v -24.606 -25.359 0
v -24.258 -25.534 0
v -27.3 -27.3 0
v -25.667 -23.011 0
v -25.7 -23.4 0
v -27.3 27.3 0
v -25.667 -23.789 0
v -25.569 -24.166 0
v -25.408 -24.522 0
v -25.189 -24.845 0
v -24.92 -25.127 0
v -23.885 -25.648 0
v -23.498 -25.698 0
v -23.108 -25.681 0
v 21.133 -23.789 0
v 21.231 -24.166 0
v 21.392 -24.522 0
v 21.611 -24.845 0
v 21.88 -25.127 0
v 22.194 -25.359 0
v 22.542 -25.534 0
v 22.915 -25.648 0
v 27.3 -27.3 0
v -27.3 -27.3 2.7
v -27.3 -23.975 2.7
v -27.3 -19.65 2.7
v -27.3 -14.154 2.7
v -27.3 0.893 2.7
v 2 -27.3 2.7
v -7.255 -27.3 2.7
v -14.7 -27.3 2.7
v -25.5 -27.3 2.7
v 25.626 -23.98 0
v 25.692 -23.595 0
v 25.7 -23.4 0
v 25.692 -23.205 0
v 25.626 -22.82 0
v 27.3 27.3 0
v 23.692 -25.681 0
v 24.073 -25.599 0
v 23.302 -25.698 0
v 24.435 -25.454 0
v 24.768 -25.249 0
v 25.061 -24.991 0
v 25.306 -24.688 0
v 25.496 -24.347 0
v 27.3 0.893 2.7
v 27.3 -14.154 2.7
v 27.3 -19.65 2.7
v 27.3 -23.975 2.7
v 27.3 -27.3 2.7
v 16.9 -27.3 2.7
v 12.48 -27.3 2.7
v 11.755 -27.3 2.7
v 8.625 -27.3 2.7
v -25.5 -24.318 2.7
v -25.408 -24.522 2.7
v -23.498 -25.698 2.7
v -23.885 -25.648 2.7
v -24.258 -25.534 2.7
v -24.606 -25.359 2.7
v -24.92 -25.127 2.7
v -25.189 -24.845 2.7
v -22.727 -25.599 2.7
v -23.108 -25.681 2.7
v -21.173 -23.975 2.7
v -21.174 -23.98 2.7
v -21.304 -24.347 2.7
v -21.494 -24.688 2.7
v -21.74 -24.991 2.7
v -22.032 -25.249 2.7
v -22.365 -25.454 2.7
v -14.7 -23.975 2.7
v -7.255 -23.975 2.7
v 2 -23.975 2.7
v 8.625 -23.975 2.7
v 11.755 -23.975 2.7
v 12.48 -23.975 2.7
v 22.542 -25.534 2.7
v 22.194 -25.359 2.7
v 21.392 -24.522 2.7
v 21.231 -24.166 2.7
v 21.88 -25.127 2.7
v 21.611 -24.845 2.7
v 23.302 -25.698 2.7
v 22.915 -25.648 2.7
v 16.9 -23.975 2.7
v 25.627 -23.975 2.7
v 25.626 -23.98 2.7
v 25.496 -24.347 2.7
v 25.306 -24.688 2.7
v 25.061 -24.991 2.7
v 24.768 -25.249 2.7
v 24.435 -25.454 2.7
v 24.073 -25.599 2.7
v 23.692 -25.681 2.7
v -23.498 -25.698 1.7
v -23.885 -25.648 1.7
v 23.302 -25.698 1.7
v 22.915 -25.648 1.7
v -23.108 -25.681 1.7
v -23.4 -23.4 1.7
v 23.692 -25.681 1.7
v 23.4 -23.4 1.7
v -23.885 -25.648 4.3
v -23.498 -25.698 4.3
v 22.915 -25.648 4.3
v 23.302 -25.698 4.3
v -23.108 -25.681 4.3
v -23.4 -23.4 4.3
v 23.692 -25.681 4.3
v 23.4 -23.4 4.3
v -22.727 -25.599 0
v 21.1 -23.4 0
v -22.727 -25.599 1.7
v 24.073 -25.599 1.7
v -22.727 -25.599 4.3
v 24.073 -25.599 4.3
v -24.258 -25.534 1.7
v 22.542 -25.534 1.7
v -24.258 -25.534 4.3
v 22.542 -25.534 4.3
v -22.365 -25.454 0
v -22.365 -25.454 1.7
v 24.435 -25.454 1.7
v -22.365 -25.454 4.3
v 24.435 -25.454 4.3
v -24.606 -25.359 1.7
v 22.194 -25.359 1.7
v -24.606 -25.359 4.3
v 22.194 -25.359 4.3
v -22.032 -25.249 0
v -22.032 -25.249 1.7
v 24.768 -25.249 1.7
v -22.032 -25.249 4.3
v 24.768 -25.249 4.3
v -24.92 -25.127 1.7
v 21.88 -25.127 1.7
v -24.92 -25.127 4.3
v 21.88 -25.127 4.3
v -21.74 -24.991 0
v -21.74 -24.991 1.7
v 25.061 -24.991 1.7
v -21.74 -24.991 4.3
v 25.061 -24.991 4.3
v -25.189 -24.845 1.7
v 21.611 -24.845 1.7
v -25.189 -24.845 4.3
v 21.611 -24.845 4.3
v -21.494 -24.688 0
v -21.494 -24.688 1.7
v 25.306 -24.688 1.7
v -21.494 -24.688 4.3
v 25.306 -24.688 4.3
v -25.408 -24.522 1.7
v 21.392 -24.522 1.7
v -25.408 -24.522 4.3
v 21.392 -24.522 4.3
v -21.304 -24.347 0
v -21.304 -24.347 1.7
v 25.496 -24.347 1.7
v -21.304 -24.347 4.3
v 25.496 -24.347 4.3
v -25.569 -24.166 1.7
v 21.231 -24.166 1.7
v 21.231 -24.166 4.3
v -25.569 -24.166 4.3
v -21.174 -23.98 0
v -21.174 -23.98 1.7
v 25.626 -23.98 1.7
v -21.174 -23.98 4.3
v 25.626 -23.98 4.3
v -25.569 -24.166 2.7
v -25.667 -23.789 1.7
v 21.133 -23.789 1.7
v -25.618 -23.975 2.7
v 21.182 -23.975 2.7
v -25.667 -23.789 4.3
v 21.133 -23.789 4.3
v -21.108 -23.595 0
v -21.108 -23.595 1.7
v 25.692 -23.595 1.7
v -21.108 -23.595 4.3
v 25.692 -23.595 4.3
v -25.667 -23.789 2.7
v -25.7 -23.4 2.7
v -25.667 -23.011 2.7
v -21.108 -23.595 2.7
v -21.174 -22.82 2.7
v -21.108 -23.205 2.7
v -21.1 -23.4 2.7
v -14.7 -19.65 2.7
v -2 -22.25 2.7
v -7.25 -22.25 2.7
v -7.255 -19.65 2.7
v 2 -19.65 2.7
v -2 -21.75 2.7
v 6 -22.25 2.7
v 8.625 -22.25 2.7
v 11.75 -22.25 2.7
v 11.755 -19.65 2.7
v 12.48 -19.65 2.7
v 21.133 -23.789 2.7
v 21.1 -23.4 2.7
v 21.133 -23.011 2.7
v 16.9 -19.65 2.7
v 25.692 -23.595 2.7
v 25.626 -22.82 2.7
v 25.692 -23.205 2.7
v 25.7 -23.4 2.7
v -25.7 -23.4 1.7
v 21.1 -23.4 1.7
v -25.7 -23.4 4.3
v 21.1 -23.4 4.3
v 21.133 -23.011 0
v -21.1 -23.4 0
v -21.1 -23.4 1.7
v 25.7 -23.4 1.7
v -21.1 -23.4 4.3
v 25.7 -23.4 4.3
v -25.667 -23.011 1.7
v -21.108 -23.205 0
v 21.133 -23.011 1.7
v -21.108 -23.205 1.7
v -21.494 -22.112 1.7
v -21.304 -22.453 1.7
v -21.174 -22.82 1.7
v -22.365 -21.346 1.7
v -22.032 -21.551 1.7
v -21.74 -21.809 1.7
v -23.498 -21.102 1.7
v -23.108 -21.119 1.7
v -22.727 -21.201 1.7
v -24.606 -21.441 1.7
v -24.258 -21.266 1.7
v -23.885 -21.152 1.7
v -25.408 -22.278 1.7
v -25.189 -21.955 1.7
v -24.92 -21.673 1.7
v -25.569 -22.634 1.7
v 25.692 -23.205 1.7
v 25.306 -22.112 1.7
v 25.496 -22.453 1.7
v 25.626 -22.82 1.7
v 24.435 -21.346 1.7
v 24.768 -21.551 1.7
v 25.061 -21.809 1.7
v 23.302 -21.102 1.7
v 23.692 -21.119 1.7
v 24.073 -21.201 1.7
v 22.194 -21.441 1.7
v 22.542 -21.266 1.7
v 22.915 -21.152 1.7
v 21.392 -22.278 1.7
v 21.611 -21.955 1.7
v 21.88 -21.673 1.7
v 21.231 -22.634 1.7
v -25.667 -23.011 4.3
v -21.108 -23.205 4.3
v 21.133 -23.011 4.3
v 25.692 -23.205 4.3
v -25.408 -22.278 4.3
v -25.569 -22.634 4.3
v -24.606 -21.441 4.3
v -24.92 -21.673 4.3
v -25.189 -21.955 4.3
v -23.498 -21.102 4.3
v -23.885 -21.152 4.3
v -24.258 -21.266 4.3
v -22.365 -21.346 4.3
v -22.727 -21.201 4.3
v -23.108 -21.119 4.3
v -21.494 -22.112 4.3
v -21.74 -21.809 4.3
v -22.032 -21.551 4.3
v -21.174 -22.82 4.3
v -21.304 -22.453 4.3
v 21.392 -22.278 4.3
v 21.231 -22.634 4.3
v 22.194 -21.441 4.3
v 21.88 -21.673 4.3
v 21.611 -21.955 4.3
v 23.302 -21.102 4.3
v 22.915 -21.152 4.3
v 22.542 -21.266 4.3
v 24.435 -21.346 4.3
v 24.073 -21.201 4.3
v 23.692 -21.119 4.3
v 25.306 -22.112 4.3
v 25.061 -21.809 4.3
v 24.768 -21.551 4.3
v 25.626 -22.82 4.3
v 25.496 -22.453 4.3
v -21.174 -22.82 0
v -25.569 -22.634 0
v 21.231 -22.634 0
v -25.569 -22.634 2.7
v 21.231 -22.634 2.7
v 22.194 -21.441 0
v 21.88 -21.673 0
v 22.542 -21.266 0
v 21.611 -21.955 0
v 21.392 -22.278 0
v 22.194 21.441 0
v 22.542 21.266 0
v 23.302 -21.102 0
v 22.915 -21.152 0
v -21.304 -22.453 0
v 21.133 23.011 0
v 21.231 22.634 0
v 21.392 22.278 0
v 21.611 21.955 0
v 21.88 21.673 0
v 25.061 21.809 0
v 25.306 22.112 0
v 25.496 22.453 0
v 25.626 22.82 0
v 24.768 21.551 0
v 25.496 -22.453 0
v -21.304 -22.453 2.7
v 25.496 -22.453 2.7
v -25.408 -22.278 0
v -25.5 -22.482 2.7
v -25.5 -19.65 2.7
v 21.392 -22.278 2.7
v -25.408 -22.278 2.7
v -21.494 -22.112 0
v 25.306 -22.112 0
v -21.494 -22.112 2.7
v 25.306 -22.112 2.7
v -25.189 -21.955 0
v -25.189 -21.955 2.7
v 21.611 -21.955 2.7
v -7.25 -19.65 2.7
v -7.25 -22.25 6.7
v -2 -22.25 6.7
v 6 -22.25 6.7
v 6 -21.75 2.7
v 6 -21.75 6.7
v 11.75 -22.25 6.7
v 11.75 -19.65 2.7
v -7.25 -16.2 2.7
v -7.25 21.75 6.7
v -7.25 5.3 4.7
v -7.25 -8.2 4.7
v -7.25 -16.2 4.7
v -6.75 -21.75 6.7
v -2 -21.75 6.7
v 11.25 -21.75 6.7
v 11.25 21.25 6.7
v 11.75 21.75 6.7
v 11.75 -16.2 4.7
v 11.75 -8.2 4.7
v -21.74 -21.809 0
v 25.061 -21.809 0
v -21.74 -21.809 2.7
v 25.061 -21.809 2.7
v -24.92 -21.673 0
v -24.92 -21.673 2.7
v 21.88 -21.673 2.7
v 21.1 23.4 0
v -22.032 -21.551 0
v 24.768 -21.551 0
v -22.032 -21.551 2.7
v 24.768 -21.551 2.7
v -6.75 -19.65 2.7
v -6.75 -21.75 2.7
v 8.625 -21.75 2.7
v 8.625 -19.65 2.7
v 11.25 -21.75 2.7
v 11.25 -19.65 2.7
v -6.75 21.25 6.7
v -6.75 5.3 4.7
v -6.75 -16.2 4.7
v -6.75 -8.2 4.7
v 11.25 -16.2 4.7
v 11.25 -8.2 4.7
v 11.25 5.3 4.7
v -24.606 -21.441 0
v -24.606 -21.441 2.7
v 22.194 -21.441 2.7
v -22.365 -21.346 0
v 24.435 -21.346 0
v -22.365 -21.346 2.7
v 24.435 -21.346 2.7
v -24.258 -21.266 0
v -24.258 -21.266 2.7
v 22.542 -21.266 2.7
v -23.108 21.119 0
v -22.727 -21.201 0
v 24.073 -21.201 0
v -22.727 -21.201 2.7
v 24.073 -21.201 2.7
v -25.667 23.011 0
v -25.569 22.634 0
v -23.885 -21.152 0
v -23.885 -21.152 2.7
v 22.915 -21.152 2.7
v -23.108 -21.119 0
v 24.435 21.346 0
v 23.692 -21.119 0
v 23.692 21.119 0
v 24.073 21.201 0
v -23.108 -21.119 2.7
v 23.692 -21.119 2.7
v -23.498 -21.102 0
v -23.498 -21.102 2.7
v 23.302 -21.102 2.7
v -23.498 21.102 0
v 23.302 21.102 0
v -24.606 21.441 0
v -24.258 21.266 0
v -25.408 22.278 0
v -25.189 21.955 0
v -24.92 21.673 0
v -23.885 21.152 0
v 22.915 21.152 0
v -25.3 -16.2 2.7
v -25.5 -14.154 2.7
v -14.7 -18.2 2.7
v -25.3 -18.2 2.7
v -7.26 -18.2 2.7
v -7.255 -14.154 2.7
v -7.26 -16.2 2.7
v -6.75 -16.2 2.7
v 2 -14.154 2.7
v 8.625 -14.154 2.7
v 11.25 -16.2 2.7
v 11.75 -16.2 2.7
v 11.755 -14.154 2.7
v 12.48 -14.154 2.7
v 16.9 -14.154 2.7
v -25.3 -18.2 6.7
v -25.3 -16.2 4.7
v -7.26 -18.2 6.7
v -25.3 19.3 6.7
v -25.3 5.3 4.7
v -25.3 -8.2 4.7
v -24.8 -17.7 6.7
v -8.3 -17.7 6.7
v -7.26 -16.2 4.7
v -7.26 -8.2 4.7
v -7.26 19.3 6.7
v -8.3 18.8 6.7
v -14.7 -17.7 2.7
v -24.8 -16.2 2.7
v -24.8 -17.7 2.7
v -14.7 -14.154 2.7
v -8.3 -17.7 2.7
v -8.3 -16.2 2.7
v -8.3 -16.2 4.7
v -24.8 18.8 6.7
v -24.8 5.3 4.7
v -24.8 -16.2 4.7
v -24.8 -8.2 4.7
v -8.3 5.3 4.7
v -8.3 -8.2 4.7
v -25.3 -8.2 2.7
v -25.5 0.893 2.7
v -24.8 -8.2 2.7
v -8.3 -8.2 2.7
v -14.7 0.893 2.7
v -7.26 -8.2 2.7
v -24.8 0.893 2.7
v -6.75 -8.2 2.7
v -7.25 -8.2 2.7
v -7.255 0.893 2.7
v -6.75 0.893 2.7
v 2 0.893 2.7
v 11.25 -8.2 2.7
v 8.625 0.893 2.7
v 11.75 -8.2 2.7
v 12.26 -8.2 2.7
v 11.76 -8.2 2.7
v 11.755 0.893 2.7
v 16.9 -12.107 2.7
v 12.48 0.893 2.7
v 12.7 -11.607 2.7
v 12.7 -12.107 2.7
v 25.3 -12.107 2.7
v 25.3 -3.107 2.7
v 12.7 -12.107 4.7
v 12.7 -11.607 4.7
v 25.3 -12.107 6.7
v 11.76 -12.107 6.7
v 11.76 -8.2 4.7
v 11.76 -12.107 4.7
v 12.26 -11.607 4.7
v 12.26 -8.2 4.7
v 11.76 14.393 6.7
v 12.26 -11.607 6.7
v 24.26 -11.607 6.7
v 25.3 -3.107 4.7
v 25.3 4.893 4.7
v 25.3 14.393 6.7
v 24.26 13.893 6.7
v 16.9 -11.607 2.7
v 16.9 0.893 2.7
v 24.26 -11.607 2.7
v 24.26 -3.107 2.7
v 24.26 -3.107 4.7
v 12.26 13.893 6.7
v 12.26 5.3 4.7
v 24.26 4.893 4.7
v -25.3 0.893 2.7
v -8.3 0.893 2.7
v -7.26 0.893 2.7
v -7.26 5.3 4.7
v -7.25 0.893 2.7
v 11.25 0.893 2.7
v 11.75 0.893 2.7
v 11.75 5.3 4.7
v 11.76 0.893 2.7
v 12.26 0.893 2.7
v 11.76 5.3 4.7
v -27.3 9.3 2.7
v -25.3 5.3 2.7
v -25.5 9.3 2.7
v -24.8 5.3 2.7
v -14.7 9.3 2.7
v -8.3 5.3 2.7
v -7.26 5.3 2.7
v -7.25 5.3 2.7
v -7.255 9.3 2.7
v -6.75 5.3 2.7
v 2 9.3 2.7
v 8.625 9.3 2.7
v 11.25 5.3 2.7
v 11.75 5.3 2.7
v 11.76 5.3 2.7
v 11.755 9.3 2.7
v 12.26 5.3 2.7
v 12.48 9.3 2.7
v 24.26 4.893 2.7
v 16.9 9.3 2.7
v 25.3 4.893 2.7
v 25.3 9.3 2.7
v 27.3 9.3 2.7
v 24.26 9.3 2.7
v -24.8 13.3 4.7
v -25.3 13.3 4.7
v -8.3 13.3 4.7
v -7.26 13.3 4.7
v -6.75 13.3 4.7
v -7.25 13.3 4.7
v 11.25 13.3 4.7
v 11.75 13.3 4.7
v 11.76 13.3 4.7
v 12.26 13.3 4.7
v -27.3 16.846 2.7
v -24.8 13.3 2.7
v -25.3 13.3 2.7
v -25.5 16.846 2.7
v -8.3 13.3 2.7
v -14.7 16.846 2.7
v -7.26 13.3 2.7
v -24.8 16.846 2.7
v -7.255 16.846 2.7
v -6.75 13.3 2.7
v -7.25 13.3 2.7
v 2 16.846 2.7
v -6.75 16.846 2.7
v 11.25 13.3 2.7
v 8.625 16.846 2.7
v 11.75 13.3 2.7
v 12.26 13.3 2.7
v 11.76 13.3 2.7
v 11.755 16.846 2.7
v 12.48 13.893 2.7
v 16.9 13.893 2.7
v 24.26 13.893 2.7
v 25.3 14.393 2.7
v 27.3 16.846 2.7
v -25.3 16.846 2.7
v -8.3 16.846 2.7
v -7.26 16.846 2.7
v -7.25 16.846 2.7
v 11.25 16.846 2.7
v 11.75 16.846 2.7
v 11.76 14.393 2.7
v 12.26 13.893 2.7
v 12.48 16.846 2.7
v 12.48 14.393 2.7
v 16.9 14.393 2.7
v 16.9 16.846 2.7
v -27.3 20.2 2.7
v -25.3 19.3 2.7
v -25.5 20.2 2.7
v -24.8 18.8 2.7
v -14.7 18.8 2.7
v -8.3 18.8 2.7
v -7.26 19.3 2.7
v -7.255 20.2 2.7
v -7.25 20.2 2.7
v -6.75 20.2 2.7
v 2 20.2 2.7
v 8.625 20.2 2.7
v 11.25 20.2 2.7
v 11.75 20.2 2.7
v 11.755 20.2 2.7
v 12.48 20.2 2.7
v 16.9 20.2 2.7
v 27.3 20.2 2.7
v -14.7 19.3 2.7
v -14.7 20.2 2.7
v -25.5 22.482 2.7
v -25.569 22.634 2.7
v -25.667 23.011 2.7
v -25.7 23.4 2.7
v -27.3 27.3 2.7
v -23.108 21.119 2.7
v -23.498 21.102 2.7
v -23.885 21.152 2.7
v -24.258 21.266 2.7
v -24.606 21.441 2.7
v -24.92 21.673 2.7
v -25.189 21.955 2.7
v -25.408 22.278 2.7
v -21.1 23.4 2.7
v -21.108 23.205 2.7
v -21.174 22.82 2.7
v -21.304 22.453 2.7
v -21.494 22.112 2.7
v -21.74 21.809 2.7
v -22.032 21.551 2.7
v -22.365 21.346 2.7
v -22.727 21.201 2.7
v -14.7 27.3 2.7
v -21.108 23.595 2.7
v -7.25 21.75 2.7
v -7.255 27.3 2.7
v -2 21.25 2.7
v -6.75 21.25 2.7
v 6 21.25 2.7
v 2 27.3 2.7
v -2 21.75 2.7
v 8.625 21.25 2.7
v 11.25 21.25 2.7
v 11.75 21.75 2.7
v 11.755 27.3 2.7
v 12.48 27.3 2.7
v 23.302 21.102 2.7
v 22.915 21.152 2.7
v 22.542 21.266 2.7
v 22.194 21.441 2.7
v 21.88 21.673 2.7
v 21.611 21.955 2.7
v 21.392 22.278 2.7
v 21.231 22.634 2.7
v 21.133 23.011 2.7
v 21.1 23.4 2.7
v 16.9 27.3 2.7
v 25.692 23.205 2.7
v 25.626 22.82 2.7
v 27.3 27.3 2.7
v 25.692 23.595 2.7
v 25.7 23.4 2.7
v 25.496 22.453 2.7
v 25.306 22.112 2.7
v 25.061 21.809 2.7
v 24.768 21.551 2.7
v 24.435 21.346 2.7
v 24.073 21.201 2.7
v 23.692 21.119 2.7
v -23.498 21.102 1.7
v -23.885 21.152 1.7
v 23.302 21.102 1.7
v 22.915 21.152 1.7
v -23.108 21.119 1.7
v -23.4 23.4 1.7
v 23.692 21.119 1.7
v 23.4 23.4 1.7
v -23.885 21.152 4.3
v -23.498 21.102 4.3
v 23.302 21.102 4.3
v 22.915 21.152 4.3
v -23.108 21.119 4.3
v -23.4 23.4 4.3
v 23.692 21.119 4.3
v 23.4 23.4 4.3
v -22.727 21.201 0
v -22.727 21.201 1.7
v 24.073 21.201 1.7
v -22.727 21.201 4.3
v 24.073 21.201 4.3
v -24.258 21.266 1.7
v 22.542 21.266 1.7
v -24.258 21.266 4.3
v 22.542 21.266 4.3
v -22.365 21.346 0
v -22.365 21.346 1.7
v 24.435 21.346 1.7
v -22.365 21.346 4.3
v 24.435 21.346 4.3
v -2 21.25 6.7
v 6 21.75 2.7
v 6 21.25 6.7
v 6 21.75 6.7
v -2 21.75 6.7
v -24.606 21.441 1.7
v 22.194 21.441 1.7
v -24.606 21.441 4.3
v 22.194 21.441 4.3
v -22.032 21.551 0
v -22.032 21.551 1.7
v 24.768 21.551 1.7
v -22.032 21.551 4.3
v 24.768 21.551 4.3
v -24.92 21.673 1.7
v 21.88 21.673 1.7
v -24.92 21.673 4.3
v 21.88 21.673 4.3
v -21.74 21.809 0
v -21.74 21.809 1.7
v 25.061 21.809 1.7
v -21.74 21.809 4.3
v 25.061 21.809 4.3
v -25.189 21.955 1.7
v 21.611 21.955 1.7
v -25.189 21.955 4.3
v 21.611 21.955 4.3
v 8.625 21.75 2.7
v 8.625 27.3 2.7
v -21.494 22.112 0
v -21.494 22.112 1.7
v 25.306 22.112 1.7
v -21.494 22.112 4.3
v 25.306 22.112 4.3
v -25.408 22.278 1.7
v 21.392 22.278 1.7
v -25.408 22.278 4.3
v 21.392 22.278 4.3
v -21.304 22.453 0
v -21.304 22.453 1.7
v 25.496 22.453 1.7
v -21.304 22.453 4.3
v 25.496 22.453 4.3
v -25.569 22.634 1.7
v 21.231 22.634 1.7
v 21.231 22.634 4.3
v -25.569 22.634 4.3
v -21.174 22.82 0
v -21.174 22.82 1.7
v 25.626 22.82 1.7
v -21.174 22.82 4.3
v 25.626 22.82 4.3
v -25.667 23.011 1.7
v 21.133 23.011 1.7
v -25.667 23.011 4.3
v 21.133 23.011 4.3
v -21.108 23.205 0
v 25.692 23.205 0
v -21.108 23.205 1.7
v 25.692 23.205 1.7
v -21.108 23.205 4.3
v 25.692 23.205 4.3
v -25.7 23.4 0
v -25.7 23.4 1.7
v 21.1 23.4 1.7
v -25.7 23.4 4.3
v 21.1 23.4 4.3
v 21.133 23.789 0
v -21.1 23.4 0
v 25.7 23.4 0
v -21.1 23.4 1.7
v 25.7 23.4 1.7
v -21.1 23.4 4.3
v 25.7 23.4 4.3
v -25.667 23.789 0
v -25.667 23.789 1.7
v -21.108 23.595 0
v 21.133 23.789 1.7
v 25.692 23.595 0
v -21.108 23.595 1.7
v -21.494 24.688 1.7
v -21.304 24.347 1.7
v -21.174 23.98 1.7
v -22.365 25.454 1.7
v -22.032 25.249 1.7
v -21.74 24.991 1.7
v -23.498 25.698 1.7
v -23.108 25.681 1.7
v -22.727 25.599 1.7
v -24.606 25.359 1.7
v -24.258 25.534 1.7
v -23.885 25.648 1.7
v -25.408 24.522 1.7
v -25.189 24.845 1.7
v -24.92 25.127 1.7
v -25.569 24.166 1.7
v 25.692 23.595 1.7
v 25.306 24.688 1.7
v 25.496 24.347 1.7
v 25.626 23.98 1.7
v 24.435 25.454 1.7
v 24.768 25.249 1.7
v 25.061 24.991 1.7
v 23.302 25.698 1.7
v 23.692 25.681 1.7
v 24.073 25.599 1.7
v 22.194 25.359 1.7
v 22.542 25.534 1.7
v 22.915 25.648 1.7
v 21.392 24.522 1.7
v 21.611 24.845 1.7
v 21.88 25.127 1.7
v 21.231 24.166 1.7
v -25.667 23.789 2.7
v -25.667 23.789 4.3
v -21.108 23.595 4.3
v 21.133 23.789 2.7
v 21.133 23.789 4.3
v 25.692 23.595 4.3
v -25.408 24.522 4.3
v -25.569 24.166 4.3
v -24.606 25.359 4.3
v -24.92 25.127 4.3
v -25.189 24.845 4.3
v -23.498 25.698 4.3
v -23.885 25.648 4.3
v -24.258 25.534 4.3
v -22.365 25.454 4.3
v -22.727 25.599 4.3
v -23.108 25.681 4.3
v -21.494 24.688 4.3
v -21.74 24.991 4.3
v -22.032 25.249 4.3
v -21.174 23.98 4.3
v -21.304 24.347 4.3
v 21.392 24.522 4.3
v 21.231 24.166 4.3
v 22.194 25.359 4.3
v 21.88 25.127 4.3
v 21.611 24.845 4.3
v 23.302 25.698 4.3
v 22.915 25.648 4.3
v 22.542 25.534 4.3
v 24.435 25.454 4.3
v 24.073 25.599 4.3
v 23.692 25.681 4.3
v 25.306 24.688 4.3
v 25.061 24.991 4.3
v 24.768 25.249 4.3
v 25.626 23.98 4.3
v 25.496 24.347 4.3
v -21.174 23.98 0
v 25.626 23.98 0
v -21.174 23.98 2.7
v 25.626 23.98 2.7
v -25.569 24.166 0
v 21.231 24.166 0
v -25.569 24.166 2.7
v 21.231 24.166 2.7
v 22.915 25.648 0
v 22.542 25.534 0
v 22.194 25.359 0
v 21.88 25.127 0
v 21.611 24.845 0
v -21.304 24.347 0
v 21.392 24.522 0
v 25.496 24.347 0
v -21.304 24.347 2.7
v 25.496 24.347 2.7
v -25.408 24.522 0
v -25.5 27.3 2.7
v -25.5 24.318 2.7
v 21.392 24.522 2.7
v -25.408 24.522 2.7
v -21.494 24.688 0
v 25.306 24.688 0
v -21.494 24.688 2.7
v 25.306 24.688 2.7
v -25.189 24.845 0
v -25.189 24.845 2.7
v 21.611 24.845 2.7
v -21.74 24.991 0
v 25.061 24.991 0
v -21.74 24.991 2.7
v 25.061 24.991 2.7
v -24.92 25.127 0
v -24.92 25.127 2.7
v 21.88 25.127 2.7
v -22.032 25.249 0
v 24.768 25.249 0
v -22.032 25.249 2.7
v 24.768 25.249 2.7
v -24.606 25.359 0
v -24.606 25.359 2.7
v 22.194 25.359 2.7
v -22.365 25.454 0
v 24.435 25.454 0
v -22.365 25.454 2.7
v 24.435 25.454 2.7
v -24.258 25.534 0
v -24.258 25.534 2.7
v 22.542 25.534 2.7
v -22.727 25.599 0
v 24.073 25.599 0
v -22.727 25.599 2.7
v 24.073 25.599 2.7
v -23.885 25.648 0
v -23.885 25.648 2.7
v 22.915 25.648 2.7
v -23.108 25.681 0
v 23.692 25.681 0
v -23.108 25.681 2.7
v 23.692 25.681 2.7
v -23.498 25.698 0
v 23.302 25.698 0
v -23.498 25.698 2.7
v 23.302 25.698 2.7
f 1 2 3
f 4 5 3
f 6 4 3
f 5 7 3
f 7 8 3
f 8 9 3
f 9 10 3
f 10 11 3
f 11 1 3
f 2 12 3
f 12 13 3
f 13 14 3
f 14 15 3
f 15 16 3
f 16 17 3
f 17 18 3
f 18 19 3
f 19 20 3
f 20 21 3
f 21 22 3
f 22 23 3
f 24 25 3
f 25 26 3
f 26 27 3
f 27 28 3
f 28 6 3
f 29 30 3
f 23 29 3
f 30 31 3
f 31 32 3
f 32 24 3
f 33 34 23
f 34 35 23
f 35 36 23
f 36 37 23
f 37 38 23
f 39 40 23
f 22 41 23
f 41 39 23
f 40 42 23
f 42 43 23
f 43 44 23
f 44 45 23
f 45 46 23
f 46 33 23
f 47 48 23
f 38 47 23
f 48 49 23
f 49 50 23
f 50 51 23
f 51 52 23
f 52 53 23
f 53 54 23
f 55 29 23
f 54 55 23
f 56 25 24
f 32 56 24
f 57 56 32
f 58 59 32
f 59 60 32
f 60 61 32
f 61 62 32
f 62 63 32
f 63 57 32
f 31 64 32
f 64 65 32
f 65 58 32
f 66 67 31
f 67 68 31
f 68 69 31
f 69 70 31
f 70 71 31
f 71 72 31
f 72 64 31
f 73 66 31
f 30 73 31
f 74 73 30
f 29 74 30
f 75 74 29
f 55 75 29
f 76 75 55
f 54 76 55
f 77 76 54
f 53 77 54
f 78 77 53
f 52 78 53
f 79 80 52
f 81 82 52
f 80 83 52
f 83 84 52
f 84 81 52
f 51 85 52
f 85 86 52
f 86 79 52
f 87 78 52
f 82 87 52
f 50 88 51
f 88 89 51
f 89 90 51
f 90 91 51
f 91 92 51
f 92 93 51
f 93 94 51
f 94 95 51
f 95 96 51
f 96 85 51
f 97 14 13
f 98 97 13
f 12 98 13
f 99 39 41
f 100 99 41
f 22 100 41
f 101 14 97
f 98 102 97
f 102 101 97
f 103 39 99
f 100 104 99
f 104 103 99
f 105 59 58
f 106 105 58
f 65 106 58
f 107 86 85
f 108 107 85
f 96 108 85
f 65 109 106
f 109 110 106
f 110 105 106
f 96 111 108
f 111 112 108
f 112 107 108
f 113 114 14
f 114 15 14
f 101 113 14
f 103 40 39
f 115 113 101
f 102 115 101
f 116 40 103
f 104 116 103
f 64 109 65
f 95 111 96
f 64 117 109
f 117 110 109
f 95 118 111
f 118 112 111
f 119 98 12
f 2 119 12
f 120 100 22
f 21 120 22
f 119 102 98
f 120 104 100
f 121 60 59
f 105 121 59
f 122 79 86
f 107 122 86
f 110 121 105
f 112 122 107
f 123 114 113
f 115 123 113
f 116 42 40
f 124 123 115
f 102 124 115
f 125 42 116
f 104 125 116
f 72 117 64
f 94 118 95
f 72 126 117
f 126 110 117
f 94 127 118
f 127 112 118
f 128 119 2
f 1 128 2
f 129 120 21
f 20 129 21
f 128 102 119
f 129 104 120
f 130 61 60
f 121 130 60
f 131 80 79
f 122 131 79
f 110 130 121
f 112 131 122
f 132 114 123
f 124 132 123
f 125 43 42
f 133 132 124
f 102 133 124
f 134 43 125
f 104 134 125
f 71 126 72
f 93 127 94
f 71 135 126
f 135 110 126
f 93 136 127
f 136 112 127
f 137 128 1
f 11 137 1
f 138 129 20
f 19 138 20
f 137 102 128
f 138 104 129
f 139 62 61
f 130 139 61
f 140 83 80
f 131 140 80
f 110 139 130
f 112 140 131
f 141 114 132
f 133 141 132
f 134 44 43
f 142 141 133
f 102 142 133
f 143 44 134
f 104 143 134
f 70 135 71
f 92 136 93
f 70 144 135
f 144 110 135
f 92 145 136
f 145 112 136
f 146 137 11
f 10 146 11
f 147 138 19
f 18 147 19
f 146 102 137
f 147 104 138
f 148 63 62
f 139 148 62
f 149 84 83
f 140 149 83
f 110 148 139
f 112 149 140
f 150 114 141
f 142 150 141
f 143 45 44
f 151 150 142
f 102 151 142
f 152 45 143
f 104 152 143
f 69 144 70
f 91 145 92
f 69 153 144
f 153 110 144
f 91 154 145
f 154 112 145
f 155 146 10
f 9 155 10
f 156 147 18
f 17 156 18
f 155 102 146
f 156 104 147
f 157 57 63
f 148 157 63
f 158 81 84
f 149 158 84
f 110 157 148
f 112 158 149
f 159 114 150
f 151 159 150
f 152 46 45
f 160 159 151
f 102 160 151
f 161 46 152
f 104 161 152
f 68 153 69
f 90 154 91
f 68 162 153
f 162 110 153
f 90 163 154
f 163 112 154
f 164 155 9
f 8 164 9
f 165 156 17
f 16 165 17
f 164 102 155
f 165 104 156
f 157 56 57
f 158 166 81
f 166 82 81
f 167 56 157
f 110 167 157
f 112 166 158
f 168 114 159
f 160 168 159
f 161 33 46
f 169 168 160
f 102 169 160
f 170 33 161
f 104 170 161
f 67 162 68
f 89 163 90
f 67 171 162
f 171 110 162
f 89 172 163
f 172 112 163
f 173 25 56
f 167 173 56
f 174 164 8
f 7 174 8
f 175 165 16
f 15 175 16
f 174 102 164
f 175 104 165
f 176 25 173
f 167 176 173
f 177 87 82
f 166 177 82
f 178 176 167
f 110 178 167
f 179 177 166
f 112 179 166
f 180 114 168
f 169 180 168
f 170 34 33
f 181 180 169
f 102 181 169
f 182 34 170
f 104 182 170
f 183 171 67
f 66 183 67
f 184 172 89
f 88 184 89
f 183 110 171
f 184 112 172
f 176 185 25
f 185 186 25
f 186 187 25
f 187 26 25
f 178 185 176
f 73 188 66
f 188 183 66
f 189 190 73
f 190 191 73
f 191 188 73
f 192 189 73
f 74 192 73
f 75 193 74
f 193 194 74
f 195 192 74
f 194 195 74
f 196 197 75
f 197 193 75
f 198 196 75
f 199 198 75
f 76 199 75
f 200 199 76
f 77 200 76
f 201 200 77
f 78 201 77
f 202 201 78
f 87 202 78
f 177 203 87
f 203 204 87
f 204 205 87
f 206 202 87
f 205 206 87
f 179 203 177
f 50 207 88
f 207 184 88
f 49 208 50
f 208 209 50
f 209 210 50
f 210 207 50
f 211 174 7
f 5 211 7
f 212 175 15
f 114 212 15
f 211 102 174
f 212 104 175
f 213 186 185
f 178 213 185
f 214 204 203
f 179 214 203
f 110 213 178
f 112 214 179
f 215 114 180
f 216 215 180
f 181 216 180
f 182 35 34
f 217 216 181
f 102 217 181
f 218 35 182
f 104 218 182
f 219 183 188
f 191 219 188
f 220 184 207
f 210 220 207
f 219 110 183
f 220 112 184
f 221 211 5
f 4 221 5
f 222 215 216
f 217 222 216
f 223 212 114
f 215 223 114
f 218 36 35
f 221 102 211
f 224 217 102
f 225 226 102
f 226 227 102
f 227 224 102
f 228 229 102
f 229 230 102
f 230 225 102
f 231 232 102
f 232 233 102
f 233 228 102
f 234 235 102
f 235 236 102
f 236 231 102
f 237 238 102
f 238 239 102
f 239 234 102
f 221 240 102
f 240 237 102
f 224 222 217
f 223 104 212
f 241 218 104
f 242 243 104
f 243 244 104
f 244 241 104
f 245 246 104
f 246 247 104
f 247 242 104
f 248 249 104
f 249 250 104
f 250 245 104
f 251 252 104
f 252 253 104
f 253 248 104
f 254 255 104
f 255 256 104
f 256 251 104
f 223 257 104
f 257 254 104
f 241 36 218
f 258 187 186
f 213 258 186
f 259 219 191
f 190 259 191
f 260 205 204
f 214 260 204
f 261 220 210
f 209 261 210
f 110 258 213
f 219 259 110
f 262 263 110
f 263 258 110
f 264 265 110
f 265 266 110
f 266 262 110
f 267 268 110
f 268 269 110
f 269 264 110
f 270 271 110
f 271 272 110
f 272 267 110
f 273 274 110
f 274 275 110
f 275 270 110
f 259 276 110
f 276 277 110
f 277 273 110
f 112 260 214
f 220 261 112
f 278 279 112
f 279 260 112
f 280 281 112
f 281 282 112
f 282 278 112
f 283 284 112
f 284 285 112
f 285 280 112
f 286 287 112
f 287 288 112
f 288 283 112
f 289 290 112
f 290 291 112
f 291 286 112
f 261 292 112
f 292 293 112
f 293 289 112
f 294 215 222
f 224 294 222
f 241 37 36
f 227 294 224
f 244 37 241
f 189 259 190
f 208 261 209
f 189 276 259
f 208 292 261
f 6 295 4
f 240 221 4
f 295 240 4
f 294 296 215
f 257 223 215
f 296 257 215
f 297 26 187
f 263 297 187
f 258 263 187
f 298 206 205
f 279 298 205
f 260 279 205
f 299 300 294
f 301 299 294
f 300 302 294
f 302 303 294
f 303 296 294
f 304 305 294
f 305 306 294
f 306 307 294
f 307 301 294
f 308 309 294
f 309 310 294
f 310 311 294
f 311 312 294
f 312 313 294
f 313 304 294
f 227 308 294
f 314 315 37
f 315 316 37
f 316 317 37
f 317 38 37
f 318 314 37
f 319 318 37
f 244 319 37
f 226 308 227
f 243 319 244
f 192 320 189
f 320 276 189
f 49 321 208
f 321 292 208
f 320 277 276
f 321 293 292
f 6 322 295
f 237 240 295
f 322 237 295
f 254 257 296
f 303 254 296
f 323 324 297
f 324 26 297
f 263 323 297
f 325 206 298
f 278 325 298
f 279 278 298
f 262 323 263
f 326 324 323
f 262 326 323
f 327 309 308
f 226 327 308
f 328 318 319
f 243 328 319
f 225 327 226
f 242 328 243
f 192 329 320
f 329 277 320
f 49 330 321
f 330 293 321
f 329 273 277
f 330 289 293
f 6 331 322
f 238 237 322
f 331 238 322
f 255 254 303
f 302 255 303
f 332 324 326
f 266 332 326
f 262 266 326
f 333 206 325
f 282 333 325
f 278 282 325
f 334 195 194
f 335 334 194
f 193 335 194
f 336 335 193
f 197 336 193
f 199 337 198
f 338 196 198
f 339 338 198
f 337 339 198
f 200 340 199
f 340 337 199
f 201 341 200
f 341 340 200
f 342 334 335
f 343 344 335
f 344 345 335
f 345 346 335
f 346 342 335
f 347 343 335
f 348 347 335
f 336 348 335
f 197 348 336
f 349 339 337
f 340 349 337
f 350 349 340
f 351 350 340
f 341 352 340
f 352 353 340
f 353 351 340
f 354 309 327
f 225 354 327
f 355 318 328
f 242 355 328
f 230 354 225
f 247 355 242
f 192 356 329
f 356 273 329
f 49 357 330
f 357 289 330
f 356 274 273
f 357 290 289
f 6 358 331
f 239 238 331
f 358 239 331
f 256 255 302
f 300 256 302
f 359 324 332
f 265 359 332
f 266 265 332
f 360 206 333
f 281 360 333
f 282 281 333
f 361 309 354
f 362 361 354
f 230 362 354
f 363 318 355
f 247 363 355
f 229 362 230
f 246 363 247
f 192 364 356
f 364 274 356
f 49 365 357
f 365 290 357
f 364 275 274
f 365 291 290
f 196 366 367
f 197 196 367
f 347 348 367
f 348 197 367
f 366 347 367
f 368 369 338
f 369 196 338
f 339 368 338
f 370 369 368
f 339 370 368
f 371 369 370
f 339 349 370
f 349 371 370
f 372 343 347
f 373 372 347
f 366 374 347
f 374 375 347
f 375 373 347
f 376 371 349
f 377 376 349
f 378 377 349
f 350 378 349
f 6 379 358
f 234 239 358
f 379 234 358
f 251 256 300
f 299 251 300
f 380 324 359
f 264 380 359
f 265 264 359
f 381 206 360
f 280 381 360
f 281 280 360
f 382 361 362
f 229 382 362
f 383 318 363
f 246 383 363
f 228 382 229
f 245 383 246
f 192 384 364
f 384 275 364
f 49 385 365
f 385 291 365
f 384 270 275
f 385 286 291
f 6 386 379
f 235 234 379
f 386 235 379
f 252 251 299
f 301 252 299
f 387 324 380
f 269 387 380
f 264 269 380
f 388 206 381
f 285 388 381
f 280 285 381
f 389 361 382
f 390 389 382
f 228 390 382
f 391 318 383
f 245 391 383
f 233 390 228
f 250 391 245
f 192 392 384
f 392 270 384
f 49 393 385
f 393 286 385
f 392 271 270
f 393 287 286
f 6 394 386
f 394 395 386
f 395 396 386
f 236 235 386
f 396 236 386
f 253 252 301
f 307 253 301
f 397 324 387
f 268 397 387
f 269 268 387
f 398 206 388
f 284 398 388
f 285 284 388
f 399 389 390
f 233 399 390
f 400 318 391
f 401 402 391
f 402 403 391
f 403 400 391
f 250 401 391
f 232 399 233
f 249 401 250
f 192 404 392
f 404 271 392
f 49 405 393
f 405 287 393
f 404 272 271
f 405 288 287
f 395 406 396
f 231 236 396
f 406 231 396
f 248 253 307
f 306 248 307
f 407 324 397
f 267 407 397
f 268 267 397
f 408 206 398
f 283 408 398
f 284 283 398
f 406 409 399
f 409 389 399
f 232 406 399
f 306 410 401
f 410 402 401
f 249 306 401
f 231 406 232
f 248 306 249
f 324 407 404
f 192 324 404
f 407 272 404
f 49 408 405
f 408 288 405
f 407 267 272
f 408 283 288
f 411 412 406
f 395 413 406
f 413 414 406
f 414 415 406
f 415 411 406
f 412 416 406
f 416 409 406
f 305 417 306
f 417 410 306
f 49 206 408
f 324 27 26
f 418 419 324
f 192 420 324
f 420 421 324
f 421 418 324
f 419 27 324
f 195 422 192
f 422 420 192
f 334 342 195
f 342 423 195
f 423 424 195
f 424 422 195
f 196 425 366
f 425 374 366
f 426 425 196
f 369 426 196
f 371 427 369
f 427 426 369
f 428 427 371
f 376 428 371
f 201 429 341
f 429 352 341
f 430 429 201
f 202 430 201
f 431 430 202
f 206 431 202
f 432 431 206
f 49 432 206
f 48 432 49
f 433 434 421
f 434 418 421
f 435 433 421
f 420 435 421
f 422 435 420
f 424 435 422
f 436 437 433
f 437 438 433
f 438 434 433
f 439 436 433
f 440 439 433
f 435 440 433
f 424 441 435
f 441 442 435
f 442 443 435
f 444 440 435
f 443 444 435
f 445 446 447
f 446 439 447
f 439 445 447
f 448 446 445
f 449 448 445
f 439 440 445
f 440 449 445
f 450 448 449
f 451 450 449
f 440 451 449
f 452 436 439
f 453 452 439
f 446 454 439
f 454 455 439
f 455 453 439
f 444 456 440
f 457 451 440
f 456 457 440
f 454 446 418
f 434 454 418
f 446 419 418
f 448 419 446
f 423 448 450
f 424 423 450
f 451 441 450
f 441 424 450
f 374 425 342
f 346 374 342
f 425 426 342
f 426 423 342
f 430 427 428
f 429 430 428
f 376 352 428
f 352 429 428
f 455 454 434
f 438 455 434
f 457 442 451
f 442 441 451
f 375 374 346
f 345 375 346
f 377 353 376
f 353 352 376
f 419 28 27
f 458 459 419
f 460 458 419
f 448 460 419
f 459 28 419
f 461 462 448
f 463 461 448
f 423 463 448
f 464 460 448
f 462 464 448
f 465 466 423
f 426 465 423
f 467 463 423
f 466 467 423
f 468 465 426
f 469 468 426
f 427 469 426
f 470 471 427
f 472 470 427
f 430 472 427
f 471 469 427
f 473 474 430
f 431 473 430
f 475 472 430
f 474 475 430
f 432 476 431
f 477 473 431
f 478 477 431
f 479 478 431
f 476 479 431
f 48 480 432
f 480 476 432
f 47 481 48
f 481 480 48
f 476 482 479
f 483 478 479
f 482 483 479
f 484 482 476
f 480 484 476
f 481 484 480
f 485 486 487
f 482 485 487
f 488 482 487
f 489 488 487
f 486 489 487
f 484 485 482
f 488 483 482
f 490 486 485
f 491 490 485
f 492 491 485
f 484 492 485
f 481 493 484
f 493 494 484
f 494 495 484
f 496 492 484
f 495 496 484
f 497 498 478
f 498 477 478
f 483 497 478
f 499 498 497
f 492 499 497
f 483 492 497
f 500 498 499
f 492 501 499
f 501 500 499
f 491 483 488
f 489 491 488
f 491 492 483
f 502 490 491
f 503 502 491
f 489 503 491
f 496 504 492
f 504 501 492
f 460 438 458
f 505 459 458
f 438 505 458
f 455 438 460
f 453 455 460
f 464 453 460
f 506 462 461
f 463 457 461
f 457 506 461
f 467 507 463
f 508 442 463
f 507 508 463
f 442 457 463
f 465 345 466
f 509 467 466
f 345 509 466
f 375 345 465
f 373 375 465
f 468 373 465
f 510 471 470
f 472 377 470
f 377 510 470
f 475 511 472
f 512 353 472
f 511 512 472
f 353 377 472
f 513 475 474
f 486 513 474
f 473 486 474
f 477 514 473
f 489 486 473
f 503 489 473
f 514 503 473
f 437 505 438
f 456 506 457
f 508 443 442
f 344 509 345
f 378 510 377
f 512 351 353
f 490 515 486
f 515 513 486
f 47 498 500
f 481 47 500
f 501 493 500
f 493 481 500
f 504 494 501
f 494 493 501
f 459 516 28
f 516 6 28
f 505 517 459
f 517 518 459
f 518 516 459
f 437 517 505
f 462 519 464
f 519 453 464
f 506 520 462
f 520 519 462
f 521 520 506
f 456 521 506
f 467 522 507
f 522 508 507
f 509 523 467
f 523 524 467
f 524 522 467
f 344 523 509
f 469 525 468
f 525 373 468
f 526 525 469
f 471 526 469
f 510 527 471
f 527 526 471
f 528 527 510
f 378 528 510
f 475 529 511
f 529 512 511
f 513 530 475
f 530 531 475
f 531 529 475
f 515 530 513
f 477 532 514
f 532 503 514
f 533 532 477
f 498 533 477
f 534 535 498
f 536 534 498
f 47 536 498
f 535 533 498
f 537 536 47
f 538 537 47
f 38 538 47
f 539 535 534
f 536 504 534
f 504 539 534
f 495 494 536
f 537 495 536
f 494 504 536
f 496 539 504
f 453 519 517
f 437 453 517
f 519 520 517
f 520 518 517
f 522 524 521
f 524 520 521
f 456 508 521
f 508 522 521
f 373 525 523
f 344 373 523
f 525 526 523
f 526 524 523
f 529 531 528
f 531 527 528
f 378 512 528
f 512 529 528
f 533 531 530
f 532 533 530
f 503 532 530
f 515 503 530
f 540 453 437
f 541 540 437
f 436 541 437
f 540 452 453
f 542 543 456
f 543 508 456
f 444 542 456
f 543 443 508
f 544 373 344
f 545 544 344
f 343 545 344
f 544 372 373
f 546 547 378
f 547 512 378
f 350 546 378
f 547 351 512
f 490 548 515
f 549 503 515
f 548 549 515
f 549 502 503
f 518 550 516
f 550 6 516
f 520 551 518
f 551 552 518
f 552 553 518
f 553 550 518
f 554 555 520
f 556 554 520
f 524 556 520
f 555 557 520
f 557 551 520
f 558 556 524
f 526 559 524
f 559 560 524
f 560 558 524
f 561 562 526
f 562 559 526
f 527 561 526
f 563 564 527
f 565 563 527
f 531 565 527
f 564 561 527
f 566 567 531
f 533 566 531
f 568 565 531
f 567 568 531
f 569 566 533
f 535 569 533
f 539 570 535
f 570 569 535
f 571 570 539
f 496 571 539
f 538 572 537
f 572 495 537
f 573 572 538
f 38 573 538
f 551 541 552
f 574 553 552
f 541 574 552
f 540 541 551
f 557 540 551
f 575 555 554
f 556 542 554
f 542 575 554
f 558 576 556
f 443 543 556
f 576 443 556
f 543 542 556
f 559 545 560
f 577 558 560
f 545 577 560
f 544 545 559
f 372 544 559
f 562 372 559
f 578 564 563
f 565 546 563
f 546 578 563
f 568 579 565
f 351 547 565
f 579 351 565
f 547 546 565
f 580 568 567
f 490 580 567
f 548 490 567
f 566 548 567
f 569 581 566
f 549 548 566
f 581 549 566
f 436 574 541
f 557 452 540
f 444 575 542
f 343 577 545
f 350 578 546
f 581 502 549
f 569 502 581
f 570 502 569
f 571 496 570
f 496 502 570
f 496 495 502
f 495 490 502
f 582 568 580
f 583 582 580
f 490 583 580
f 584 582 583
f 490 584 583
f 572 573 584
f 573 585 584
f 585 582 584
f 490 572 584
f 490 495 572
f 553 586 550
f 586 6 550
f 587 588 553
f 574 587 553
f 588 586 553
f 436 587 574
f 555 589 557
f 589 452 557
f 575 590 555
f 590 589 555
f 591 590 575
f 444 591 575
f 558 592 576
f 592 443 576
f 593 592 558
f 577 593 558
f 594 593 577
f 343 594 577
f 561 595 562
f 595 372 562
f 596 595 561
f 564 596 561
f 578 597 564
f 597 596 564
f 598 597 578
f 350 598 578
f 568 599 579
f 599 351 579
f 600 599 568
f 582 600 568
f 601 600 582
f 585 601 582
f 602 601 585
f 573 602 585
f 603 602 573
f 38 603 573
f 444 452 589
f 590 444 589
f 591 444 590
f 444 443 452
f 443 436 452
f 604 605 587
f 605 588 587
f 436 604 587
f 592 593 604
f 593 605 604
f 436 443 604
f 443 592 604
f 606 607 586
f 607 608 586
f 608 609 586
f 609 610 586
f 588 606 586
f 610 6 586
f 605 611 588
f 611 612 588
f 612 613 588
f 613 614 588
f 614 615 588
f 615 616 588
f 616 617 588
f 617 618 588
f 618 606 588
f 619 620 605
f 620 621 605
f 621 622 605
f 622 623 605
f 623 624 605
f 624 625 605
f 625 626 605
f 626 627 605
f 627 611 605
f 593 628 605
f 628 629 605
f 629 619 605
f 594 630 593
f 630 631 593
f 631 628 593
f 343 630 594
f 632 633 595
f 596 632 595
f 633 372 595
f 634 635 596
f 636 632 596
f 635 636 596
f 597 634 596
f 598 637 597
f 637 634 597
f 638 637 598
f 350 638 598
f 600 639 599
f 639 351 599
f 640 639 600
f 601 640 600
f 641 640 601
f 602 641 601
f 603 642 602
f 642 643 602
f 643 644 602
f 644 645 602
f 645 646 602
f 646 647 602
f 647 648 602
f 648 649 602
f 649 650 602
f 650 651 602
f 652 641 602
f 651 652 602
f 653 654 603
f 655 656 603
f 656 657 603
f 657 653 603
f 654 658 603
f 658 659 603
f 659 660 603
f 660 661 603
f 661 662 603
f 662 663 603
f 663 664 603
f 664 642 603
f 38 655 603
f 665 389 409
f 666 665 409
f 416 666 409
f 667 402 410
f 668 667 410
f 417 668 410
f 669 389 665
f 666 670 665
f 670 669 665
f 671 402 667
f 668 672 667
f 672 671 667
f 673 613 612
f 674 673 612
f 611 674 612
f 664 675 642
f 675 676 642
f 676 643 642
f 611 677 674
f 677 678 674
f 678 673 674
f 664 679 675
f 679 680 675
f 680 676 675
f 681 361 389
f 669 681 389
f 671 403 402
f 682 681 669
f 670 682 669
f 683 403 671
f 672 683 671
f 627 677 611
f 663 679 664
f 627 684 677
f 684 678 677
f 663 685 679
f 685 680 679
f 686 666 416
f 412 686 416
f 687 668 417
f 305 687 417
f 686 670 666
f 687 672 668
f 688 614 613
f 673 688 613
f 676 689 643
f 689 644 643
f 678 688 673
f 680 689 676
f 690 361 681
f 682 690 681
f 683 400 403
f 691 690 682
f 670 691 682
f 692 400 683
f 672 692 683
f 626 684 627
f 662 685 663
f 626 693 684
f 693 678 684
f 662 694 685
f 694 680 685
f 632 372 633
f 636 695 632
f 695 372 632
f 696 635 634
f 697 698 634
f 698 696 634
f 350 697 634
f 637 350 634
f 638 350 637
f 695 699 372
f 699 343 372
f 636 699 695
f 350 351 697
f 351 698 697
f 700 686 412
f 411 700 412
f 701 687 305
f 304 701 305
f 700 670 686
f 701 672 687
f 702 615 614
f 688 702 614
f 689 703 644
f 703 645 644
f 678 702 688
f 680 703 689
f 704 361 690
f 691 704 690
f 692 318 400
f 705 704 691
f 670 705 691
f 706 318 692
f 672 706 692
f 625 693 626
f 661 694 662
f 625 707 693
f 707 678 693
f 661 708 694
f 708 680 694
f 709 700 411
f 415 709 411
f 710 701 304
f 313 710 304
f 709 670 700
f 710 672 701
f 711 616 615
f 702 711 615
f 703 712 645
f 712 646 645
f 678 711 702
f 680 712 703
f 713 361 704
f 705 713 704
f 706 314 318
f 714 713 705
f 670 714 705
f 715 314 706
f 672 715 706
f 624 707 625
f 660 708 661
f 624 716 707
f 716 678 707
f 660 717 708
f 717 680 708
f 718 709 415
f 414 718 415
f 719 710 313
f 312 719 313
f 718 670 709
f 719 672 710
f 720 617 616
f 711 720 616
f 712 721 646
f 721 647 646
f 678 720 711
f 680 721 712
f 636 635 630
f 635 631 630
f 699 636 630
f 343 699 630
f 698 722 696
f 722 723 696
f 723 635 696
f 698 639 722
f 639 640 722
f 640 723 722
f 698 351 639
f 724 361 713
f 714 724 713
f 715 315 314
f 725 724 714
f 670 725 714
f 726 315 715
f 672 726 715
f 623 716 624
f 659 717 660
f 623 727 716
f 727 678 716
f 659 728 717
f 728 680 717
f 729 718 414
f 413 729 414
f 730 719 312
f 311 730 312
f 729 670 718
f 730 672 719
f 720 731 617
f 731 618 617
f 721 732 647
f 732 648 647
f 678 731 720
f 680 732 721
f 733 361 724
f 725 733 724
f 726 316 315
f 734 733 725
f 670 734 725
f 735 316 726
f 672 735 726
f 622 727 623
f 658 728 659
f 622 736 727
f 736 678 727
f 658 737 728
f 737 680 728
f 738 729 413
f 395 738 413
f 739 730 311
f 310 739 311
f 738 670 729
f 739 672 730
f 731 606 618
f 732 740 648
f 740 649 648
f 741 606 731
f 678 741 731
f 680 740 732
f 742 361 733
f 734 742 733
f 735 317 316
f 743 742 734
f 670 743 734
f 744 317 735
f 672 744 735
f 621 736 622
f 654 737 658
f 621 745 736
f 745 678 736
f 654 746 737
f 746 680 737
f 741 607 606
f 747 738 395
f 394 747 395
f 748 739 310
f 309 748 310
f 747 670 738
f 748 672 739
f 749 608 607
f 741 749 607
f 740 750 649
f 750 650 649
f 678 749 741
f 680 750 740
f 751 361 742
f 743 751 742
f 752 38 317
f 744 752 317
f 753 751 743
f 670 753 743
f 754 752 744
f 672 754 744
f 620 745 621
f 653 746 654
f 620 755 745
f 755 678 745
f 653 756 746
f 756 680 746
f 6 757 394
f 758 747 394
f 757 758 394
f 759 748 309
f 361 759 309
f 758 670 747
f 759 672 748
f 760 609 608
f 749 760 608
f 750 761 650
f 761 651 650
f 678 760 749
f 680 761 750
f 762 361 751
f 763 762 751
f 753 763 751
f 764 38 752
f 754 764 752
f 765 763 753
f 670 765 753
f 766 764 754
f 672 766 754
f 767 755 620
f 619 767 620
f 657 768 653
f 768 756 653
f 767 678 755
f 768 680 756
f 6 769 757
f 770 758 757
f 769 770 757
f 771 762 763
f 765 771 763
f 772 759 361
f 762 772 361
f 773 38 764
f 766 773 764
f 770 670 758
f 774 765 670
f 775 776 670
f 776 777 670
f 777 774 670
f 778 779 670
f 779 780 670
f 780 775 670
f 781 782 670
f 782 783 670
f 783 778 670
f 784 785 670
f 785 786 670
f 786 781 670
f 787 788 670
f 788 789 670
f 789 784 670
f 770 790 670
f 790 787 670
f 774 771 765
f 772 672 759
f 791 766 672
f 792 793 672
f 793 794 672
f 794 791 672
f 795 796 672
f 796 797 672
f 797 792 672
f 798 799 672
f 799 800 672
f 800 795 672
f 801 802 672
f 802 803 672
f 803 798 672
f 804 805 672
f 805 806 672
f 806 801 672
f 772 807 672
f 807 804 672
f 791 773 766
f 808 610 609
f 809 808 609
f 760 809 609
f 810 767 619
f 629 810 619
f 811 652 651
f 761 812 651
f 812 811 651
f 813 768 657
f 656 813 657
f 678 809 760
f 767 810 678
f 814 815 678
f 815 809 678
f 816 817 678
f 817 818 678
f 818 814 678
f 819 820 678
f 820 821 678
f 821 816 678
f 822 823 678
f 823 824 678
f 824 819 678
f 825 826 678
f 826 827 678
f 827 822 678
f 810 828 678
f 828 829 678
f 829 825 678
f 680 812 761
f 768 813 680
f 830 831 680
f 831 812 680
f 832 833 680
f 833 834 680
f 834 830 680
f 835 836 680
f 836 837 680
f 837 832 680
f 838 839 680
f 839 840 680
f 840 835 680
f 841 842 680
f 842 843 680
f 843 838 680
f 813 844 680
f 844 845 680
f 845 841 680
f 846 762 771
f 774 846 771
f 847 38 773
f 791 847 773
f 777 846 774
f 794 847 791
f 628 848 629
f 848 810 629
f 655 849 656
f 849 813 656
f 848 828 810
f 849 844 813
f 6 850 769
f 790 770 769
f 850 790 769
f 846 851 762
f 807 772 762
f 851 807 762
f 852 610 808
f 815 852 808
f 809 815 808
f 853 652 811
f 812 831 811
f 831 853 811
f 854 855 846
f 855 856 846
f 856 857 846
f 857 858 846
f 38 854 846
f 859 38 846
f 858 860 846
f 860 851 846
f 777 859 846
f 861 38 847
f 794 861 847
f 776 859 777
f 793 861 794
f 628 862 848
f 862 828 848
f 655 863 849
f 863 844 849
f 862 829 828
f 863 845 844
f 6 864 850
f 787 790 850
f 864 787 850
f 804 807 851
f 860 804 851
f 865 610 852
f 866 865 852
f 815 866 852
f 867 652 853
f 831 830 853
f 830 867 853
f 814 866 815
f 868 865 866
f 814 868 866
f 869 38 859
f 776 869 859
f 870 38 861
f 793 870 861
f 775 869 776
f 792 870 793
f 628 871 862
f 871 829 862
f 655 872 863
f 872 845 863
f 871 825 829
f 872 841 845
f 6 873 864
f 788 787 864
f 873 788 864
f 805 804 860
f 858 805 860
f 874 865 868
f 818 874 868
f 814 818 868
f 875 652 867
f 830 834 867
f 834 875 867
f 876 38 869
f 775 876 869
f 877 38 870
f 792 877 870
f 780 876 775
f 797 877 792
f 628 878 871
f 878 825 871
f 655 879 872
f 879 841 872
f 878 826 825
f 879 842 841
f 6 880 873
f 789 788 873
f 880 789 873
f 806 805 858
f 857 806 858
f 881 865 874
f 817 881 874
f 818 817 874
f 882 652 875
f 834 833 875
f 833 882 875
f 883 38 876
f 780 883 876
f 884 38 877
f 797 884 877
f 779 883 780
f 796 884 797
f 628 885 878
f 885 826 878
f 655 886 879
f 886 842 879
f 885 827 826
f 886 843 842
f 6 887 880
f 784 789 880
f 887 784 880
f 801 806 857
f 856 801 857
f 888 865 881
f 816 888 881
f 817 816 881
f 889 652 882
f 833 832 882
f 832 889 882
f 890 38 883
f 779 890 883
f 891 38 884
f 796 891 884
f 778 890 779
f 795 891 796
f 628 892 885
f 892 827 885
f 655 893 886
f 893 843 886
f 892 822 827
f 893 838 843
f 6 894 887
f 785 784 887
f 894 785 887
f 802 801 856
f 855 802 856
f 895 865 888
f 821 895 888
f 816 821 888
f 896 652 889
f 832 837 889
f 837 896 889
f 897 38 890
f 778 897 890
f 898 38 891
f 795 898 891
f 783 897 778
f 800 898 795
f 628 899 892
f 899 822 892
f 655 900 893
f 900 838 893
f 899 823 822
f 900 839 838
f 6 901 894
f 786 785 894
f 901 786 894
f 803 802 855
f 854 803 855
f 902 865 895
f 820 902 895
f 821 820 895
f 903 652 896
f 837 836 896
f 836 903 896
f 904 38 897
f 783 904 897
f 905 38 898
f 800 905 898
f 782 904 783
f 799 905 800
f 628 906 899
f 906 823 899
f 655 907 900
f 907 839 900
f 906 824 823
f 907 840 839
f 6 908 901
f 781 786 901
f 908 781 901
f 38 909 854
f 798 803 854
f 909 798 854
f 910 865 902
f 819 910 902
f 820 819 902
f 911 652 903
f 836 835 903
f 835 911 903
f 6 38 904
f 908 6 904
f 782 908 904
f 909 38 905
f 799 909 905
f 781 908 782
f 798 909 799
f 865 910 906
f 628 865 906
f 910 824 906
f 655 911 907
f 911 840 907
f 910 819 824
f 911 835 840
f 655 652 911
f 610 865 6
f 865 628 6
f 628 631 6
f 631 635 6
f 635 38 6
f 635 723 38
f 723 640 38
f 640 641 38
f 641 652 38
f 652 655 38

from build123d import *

# Parameters (mm, degrees)
SKICA1_W                 = 54.6
SKICA1_H                 = 54.6
SKICA1_R                 = 2.3
P_IDAT_VYSUNUT_M1_DEPTH  = 1.7
SKICA2_W                 = 54.6
SKICA2_H                 = 54.6
P_IDAT_VYSUNUT_M2_DEPTH  = 1
SKICA3_R                 = 2.3
P_IDAT_VYSUNUT_M3_DEPTH  = 1.6
SKICA4_W                 = 13.54
SKICA4_H                 = 26.5
SKICA4_W_2               = 19
SKICA4_H_2               = 44
SKICA4_W_3               = 18.04
SKICA4_H_3               = 37.5
P_IDAT_VYSUNUT_M4_DEPTH  = 4
SKICA5_W                 = 8
SKICA5_H                 = 4
ODEBRAT_VYSUNUT_M1_DEPTH = 6
SKICA6_W                 = 8
SKICA6_H                 = 4
ODEBRAT_VYSUNUT_M2_DEPTH = 6
SKICA7_W                 = 2
SKICA7_H                 = 8
ODEBRAT_VYSUNUT_M3_DEPTH = 38
SKICA8_W                 = 2
SKICA8_H                 = 8
ODEBRAT_VYSUNUT_M4_DEPTH = 13
SKICA11_W                = 16.5
SKICA11_H                = 36.5
SKICA11_W_2              = 18
SKICA11_H_2              = 43
SKICA11_W_3              = 12
SKICA11_H_3              = 25.5
ODEBRAT_VYSUNUT_M5_DEPTH = 4


with BuildPart() as part:
    # Skica1 → Přidat vysunutím1 (new body)
    with BuildSketch(Plane.XY):
        Rectangle(SKICA1_W, SKICA1_H)
        with Locations((-23.4, 23.4)):
            Circle(SKICA1_R, mode=Mode.SUBTRACT)
        with Locations((23.4, 23.4)):
            Circle(SKICA1_R, mode=Mode.SUBTRACT)
        with Locations((-23.4, -23.4)):
            Circle(SKICA1_R, mode=Mode.SUBTRACT)
        with Locations((23.4, -23.4)):
            Circle(SKICA1_R, mode=Mode.SUBTRACT)
    extrude(amount=P_IDAT_VYSUNUT_M1_DEPTH)

    # Skica2 → Přidat vysunutím2 (add)
    with BuildSketch(Plane.XY.offset(1.7)):
        Rectangle(SKICA2_W, SKICA2_H)
    extrude(amount=P_IDAT_VYSUNUT_M2_DEPTH)

    # Skica3 → Přidat vysunutím3 (add)
    with BuildSketch(Plane.XY.offset(2.7)):
        with Locations((-23.4, 23.4)):
            Circle(SKICA3_R)
        with Locations((23.4, 23.4)):
            Circle(SKICA3_R)
        with Locations((-23.4, -23.4)):
            Circle(SKICA3_R)
        with Locations((23.4, -23.4)):
            Circle(SKICA3_R)
    extrude(amount=P_IDAT_VYSUNUT_M3_DEPTH)

    # Skica4 → Přidat vysunutím4 (add)
    with BuildSketch(Plane.XY.offset(2.7)):
        with Locations((18.53, 1.14272147)):
            Rectangle(SKICA4_W, SKICA4_H)
        with Locations((2.25, -0.25)):
            Rectangle(SKICA4_W_2, SKICA4_H_2)
        with Locations((-16.28, 0.55)):
            Rectangle(SKICA4_W_3, SKICA4_H_3)
    extrude(amount=P_IDAT_VYSUNUT_M4_DEPTH)

    # Skica5 → Odebrat vysunutím1 (cut)
    with BuildSketch(Plane(origin=(0, -22.25, 0), x_dir=(-1, 0, 0), z_dir=(0, -1, 0))):
        with Locations((-2, -4.7)):
            Rectangle(SKICA5_W, SKICA5_H)
    extrude(amount=-ODEBRAT_VYSUNUT_M1_DEPTH, mode=Mode.SUBTRACT)

    # Skica6 → Odebrat vysunutím2 (cut)
    with BuildSketch(Plane(origin=(0, 21.75, 0), x_dir=(1, 0, 0), z_dir=(0, 1, 0))):
        with Locations((2, -4.7)):
            Rectangle(SKICA6_W, SKICA6_H)
    extrude(amount=-ODEBRAT_VYSUNUT_M2_DEPTH, mode=Mode.SUBTRACT)

    # Skica7 → Odebrat vysunutím3 (cut)
    with BuildSketch(Plane.ZY.offset(25.3)):
        with Locations((3.7, -12.2)):
            Rectangle(SKICA7_W, SKICA7_H)
        with Locations((3.7, 9.3)):
            Rectangle(SKICA7_W, SKICA7_H)
    extrude(amount=-ODEBRAT_VYSUNUT_M3_DEPTH, mode=Mode.SUBTRACT)

    # Skica8 → Odebrat vysunutím4 (cut)
    with BuildSketch(Plane(origin=(25.3, 0, 0), x_dir=(0, 0, -1), z_dir=(1, 0, 0))):
        with Locations((-3.7, 0.89272147)):
            Rectangle(SKICA8_W, SKICA8_H)
    extrude(amount=-ODEBRAT_VYSUNUT_M4_DEPTH, mode=Mode.SUBTRACT)

    # Skica11 → Odebrat vysunutím5 (cut)
    with BuildSketch(Plane.XY.offset(6.7)):
        with Locations((-16.55, 0.55)):
            Rectangle(SKICA11_W, SKICA11_H)
        with Locations((2.25, -0.25)):
            Rectangle(SKICA11_W_2, SKICA11_H_2)
        with Locations((18.26, 1.14272147)):
            Rectangle(SKICA11_W_3, SKICA11_H_3)
    extrude(amount=-ODEBRAT_VYSUNUT_M5_DEPTH, mode=Mode.SUBTRACT)


solid = part.part
